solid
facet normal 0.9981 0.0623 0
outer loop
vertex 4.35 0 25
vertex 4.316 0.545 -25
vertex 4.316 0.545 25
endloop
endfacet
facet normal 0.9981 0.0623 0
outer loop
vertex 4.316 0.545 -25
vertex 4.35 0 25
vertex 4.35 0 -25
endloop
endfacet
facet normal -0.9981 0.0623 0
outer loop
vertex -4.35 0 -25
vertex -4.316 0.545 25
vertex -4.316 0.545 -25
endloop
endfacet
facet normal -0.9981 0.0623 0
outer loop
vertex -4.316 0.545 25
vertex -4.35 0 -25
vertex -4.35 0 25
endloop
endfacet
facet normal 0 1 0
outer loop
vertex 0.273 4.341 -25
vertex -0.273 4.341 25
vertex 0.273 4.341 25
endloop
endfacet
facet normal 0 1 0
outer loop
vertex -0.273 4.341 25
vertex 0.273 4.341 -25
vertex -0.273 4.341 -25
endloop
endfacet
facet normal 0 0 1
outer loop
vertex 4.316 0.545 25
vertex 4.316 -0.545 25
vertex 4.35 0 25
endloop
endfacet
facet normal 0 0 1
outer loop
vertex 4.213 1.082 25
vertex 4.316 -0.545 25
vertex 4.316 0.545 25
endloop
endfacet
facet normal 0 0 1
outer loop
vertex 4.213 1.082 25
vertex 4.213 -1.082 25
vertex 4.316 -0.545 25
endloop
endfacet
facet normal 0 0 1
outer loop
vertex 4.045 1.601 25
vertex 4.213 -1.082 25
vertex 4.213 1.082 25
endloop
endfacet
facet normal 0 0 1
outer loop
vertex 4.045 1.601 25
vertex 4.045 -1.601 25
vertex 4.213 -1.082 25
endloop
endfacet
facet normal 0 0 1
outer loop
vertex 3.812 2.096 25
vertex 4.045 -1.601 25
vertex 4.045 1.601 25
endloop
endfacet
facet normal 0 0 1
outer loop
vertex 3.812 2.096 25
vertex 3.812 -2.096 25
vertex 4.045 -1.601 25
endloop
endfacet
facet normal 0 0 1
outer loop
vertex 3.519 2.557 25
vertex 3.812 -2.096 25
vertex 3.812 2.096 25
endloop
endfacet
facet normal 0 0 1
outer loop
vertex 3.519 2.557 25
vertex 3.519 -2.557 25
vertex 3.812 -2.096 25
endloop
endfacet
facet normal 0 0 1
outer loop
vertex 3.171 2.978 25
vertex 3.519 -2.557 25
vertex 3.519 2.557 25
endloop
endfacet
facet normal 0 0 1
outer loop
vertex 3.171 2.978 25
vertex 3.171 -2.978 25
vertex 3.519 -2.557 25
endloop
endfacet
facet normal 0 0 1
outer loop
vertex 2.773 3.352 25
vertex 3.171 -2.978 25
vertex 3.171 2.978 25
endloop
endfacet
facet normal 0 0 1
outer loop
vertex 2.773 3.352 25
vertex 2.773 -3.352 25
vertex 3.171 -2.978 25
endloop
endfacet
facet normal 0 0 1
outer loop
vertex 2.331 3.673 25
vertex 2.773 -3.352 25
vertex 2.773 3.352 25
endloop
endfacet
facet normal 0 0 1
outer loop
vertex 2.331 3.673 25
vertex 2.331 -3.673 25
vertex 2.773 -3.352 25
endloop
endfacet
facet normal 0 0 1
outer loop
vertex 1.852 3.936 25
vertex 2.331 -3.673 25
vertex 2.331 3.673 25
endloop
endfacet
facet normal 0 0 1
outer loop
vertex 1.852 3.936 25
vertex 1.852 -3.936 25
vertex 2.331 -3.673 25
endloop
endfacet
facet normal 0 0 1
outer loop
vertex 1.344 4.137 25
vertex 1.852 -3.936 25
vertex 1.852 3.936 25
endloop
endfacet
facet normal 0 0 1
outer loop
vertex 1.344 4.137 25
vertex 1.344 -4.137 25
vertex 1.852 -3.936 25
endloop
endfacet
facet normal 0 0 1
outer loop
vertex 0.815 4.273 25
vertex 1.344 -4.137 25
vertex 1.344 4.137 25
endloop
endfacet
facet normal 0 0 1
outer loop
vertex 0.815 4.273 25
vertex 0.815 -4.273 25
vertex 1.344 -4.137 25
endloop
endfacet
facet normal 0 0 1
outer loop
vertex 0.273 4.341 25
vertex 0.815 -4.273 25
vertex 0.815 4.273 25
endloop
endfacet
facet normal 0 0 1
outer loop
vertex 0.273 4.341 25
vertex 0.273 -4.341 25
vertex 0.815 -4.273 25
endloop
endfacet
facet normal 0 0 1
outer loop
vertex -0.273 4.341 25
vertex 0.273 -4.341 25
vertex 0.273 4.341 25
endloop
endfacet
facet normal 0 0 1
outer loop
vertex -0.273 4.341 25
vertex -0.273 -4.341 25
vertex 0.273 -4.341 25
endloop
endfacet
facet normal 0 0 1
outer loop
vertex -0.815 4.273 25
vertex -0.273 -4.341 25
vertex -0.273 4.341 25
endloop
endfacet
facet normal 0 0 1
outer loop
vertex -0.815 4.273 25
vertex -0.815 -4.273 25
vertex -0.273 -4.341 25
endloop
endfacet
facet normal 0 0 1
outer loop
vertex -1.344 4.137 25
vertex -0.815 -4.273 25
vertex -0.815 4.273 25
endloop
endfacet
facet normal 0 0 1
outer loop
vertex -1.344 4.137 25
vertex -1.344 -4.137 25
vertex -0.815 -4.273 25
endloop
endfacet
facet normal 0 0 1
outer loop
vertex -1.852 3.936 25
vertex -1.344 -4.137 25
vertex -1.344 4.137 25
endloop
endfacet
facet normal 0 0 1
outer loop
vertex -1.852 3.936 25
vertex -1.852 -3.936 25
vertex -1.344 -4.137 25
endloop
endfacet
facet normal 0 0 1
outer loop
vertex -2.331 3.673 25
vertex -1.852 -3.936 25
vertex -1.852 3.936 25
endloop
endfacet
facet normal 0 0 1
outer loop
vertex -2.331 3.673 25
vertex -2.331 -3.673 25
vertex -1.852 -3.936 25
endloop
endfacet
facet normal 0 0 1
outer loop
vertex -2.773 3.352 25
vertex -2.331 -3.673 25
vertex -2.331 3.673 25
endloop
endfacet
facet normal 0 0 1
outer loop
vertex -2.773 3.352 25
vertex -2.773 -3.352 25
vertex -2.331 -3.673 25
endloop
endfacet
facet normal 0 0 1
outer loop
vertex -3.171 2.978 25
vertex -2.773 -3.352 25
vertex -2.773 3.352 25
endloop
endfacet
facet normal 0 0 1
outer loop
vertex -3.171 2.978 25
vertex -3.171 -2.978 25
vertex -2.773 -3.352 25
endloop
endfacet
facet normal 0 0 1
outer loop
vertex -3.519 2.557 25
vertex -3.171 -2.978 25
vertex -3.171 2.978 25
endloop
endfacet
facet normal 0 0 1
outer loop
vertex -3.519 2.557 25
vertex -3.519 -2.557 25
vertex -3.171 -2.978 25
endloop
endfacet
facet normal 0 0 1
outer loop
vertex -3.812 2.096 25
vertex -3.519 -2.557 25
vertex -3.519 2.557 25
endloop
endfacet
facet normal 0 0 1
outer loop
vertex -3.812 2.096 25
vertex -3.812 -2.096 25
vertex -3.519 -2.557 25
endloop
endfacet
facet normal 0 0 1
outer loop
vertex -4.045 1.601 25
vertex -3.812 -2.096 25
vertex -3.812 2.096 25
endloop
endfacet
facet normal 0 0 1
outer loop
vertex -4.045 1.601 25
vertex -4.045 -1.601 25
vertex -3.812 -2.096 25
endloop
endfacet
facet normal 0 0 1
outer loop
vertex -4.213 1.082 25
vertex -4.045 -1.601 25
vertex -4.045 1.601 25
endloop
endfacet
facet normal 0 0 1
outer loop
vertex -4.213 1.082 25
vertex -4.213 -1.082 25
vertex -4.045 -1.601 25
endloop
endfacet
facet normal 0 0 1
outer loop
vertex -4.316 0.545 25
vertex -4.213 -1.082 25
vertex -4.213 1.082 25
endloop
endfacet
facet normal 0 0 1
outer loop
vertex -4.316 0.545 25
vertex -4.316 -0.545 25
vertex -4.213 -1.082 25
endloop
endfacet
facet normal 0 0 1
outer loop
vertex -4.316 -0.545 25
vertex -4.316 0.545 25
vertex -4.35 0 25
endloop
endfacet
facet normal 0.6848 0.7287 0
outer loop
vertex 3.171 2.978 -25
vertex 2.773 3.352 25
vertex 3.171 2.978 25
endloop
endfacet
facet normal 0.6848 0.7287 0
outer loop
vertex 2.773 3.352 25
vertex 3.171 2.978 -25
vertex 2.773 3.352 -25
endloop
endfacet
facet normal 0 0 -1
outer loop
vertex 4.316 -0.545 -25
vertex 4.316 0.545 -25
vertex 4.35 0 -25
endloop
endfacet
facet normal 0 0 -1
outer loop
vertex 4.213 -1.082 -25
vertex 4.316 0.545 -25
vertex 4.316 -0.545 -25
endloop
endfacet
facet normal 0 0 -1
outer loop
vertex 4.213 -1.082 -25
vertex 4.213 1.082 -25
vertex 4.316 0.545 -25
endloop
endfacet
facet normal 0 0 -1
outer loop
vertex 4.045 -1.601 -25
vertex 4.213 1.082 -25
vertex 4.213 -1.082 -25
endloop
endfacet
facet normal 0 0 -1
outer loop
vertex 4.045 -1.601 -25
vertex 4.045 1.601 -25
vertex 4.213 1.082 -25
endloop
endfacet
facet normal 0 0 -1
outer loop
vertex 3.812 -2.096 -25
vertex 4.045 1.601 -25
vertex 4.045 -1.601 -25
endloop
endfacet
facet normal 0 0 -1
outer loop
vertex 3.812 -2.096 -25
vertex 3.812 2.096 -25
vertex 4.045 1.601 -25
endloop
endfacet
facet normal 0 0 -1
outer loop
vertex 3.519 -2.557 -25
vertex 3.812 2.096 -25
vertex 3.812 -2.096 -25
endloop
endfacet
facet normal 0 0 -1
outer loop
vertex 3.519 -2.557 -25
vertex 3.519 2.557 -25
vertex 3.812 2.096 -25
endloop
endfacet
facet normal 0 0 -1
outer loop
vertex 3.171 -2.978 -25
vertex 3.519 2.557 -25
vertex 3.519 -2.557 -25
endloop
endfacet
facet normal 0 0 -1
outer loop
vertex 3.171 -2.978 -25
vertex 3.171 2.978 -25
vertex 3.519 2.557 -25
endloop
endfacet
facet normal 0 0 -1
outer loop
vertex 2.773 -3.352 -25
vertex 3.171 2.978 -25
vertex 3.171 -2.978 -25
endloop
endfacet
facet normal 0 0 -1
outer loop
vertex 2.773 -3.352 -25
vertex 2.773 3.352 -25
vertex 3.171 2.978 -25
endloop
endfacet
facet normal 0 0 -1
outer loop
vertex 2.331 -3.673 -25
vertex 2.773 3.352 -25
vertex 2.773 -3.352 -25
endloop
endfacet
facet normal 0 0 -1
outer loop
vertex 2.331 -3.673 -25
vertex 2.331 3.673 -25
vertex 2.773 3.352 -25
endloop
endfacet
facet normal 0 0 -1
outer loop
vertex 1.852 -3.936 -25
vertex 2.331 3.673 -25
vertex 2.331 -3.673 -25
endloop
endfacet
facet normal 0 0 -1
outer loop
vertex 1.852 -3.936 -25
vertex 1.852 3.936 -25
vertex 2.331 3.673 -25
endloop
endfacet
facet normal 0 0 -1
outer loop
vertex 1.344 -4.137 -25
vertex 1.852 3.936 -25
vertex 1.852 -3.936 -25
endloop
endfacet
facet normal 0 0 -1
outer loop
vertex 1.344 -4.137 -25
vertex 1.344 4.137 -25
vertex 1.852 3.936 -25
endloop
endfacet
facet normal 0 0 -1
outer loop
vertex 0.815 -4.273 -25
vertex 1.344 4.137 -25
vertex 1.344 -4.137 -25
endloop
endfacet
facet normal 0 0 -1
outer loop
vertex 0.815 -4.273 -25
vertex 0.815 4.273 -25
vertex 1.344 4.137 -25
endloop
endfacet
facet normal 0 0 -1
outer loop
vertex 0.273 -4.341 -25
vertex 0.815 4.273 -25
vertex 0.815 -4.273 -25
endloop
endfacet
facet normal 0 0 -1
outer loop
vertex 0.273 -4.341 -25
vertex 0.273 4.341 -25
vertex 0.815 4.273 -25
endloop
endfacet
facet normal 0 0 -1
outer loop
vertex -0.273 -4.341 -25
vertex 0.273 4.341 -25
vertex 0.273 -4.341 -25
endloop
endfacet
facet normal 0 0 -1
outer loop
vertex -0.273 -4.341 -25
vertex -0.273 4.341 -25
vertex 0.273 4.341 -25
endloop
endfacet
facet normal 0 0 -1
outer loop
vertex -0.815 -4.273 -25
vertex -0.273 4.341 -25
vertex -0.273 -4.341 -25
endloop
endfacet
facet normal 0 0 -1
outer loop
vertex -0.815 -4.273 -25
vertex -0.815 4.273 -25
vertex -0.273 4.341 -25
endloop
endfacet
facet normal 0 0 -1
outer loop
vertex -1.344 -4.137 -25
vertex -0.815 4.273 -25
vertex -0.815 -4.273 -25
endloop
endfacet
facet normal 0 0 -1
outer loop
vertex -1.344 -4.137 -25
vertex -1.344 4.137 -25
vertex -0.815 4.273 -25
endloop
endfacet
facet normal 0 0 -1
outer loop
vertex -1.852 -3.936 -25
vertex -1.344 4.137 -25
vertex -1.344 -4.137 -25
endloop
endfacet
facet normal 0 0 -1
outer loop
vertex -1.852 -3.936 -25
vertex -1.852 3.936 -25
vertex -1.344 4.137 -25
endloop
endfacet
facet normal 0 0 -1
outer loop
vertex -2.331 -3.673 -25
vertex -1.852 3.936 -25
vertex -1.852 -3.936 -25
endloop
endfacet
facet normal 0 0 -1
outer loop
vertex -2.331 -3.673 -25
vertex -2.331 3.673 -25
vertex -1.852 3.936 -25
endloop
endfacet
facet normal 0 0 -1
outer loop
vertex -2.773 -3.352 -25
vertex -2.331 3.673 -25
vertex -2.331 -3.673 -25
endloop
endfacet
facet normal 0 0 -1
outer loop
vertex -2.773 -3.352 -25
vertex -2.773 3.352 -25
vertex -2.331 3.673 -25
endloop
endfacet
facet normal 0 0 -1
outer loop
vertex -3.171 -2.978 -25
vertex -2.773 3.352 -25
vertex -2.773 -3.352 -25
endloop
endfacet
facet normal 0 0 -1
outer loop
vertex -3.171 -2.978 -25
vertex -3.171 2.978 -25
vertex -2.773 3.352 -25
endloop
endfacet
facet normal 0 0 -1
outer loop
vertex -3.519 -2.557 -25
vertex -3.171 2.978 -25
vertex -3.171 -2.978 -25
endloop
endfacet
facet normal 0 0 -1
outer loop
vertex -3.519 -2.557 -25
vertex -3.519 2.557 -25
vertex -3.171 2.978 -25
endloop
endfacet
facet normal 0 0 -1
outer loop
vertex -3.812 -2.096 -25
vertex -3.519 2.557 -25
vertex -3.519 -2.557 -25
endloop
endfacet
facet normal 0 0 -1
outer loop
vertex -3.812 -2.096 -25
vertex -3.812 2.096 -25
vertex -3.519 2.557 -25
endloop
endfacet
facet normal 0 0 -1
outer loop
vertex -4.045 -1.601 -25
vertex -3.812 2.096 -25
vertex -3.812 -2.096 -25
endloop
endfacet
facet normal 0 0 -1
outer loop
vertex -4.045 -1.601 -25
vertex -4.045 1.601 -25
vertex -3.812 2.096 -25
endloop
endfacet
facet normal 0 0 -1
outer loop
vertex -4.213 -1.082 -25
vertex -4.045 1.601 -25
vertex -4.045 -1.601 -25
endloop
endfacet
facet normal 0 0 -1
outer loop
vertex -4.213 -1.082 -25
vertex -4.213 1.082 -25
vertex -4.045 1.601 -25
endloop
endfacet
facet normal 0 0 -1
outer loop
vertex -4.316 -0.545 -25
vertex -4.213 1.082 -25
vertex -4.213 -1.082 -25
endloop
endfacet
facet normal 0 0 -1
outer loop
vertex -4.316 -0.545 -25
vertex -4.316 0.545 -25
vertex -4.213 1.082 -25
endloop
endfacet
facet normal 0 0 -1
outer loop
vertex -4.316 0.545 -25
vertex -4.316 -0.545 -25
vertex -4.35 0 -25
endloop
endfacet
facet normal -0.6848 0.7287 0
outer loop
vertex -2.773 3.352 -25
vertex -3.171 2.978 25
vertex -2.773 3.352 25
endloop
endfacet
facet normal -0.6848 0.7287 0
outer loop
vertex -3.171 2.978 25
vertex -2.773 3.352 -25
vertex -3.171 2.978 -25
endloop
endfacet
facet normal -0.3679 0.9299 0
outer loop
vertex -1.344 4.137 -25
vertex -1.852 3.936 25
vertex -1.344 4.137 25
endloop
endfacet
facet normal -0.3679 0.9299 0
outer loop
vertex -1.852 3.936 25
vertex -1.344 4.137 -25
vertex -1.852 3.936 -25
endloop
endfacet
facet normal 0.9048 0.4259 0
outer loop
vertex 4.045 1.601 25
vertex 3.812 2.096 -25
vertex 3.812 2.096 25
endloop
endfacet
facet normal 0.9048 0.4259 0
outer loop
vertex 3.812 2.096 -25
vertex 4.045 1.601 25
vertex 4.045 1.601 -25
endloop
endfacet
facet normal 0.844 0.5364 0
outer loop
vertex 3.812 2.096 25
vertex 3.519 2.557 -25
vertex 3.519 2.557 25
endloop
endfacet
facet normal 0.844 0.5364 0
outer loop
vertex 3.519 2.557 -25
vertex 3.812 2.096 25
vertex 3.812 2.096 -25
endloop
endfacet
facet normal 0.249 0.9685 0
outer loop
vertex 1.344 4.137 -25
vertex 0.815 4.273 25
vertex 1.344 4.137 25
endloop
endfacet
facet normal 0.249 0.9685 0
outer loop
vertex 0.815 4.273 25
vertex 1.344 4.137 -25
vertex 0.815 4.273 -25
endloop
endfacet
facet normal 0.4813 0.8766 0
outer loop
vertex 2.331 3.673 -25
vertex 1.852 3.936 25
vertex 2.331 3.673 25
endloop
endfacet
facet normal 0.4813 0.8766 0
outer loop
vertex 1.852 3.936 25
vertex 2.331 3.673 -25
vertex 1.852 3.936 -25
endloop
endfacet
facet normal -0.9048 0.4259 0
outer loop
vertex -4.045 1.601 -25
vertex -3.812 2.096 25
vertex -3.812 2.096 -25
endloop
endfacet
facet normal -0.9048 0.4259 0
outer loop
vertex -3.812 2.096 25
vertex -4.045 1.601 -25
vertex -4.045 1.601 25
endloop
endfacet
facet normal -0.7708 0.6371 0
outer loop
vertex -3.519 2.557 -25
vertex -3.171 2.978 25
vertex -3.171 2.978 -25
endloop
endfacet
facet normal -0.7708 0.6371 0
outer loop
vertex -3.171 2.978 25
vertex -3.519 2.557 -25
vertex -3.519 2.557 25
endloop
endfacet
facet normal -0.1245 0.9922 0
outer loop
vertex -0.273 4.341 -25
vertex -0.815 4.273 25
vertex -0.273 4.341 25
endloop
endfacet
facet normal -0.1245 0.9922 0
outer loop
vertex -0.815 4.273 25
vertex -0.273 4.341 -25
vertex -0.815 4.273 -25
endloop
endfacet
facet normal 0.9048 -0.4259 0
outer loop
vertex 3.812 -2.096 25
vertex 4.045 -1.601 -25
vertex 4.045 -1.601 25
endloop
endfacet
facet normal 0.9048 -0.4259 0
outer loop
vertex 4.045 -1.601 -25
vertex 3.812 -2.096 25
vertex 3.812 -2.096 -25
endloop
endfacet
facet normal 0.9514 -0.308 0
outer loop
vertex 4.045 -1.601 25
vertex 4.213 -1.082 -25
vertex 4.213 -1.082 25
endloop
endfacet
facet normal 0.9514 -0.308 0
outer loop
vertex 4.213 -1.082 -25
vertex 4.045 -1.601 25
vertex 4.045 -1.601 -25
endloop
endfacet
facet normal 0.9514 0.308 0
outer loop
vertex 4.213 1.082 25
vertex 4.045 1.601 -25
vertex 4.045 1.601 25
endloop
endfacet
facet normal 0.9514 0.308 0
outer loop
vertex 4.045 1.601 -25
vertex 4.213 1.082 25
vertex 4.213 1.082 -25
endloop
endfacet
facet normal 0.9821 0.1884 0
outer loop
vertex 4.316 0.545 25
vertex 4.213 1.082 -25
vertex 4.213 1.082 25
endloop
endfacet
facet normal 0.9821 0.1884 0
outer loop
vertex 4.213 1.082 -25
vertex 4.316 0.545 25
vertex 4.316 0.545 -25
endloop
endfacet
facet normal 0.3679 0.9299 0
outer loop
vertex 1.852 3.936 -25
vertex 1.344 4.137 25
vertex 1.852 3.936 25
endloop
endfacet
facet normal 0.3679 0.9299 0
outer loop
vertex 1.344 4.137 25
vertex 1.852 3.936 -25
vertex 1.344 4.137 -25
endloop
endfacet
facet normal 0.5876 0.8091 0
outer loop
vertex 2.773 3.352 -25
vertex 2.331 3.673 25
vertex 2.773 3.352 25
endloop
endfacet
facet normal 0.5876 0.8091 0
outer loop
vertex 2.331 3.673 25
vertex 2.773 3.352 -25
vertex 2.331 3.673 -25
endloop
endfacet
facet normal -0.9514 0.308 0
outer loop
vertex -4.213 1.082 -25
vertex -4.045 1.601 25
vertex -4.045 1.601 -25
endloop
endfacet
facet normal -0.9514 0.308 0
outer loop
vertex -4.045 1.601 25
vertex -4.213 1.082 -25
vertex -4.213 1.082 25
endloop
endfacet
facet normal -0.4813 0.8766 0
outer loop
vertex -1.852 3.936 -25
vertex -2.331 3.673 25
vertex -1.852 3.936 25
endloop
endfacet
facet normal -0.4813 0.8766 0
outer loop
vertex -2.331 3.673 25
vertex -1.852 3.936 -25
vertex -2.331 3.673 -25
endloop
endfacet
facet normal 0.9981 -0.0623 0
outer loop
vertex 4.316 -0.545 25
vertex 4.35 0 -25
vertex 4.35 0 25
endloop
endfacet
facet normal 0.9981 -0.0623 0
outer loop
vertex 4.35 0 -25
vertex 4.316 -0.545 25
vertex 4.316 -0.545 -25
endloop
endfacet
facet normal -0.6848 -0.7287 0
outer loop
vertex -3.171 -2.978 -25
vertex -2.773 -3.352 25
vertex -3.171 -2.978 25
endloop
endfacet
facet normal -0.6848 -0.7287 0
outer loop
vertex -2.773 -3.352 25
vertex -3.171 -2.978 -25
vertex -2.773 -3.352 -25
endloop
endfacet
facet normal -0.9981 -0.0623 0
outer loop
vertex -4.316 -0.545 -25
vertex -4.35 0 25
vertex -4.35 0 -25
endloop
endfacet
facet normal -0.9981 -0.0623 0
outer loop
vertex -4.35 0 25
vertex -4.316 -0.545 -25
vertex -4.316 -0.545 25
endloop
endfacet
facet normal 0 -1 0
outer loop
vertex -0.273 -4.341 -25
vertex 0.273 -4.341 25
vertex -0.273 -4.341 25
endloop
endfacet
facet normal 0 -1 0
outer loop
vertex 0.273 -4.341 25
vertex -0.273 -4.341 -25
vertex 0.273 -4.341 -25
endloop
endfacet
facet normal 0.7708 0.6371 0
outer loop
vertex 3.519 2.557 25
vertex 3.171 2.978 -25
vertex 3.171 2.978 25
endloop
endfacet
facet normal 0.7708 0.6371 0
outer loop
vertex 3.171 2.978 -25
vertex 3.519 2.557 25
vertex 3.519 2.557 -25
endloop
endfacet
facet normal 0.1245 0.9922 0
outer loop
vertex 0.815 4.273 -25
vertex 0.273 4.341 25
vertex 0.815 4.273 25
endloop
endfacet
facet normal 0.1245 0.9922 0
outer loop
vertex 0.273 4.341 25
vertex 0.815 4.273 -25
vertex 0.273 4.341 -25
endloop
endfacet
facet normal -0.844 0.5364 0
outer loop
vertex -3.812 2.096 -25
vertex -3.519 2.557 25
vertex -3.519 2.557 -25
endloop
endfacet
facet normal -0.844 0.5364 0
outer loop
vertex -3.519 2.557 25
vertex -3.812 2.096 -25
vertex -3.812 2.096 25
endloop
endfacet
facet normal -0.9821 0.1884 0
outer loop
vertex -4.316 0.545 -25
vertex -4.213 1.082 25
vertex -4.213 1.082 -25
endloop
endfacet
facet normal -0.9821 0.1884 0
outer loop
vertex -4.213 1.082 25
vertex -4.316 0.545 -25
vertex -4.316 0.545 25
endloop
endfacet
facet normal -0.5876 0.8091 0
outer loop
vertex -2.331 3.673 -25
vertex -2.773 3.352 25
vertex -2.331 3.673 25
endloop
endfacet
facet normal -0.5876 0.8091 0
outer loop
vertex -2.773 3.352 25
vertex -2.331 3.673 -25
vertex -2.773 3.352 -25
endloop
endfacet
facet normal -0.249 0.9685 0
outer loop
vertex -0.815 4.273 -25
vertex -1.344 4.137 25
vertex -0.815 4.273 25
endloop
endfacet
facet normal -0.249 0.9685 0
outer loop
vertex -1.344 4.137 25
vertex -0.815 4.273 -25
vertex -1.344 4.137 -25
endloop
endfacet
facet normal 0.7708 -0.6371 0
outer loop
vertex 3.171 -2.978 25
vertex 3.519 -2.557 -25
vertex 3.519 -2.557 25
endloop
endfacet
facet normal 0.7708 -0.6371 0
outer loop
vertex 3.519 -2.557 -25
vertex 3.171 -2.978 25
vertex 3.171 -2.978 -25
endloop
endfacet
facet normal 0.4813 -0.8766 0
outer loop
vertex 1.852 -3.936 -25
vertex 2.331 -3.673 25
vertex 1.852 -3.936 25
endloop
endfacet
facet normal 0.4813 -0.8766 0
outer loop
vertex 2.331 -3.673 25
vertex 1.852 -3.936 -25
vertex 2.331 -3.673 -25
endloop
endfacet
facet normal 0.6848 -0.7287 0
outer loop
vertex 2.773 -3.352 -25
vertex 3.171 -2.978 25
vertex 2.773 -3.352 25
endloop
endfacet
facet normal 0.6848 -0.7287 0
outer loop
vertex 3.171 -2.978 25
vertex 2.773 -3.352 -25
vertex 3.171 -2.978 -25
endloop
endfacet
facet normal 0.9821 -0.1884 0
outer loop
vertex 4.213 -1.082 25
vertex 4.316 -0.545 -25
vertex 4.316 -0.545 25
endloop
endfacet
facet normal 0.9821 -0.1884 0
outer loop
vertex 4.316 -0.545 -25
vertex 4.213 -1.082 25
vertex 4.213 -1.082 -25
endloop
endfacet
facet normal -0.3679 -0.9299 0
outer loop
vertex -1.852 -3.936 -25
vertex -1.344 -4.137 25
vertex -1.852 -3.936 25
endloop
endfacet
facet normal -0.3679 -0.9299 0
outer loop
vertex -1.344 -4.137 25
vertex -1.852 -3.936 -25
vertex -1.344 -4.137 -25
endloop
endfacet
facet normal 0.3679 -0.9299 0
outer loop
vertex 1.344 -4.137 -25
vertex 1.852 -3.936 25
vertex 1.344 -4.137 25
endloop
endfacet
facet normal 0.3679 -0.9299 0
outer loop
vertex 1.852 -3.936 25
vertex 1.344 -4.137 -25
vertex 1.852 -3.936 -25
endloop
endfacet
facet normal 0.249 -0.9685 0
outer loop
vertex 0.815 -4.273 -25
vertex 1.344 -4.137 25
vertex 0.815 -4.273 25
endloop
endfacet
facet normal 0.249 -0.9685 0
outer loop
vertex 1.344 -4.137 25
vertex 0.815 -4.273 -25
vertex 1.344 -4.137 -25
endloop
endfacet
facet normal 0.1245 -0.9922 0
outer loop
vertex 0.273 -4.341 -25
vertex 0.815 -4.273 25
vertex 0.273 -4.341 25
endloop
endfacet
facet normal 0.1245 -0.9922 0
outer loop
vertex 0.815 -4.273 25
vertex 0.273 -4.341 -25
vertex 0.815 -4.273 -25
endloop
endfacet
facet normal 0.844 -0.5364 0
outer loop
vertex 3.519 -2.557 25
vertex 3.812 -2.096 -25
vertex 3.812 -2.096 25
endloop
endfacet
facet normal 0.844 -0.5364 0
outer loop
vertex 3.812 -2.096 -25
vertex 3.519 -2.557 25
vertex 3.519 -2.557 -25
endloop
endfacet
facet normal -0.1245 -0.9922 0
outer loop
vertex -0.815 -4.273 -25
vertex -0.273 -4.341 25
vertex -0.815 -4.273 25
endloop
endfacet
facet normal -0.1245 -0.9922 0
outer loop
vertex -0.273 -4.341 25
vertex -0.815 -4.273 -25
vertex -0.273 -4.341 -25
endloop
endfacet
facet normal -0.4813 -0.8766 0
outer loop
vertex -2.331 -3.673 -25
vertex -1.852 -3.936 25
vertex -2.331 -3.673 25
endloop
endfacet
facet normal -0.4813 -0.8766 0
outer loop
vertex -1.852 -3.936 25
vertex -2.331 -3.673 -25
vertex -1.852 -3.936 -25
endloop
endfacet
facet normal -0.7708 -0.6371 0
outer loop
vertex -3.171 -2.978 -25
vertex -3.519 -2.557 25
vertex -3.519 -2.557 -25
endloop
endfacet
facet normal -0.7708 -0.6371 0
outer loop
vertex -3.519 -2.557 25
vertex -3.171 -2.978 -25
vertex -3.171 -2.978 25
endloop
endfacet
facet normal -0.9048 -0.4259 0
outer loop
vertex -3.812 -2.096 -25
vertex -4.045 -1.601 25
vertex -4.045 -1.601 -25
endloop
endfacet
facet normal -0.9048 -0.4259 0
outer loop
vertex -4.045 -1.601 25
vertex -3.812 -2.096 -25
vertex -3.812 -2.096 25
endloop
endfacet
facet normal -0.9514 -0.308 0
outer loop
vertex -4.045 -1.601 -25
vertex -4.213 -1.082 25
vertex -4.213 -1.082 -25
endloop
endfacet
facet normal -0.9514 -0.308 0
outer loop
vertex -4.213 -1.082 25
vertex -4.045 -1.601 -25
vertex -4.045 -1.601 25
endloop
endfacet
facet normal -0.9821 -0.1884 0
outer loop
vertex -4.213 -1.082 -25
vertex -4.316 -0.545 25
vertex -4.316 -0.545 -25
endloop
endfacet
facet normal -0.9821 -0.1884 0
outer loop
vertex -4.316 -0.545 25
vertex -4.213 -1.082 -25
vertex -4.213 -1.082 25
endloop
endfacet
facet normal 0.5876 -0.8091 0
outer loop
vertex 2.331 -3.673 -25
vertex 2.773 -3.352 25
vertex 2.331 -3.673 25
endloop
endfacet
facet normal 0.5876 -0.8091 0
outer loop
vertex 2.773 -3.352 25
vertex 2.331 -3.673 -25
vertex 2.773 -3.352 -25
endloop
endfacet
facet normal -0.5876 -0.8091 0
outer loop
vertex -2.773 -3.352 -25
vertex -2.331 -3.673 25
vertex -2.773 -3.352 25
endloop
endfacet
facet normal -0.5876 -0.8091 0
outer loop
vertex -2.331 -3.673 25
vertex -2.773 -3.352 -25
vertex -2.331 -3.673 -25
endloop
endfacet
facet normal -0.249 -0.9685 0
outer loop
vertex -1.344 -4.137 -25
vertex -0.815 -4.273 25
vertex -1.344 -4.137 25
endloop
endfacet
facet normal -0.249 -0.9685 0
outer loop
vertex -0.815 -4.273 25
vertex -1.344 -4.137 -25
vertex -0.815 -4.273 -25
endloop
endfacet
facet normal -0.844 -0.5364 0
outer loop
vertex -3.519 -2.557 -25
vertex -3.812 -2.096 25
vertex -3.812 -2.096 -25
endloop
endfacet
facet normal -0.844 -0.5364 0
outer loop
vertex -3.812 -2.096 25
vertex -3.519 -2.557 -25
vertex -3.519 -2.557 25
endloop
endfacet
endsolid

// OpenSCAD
$fn = 50;


difference() {
	union() {
		translate(v = [0, 0, -25.0000000000]) {
			cylinder(h = 50, r = 4.3500000000);
		}
	}
	union() {
		translate(v = [0, 0, -100.0000000000]) {
			cylinder(h = 200, r = 0);
		}
	}
}
